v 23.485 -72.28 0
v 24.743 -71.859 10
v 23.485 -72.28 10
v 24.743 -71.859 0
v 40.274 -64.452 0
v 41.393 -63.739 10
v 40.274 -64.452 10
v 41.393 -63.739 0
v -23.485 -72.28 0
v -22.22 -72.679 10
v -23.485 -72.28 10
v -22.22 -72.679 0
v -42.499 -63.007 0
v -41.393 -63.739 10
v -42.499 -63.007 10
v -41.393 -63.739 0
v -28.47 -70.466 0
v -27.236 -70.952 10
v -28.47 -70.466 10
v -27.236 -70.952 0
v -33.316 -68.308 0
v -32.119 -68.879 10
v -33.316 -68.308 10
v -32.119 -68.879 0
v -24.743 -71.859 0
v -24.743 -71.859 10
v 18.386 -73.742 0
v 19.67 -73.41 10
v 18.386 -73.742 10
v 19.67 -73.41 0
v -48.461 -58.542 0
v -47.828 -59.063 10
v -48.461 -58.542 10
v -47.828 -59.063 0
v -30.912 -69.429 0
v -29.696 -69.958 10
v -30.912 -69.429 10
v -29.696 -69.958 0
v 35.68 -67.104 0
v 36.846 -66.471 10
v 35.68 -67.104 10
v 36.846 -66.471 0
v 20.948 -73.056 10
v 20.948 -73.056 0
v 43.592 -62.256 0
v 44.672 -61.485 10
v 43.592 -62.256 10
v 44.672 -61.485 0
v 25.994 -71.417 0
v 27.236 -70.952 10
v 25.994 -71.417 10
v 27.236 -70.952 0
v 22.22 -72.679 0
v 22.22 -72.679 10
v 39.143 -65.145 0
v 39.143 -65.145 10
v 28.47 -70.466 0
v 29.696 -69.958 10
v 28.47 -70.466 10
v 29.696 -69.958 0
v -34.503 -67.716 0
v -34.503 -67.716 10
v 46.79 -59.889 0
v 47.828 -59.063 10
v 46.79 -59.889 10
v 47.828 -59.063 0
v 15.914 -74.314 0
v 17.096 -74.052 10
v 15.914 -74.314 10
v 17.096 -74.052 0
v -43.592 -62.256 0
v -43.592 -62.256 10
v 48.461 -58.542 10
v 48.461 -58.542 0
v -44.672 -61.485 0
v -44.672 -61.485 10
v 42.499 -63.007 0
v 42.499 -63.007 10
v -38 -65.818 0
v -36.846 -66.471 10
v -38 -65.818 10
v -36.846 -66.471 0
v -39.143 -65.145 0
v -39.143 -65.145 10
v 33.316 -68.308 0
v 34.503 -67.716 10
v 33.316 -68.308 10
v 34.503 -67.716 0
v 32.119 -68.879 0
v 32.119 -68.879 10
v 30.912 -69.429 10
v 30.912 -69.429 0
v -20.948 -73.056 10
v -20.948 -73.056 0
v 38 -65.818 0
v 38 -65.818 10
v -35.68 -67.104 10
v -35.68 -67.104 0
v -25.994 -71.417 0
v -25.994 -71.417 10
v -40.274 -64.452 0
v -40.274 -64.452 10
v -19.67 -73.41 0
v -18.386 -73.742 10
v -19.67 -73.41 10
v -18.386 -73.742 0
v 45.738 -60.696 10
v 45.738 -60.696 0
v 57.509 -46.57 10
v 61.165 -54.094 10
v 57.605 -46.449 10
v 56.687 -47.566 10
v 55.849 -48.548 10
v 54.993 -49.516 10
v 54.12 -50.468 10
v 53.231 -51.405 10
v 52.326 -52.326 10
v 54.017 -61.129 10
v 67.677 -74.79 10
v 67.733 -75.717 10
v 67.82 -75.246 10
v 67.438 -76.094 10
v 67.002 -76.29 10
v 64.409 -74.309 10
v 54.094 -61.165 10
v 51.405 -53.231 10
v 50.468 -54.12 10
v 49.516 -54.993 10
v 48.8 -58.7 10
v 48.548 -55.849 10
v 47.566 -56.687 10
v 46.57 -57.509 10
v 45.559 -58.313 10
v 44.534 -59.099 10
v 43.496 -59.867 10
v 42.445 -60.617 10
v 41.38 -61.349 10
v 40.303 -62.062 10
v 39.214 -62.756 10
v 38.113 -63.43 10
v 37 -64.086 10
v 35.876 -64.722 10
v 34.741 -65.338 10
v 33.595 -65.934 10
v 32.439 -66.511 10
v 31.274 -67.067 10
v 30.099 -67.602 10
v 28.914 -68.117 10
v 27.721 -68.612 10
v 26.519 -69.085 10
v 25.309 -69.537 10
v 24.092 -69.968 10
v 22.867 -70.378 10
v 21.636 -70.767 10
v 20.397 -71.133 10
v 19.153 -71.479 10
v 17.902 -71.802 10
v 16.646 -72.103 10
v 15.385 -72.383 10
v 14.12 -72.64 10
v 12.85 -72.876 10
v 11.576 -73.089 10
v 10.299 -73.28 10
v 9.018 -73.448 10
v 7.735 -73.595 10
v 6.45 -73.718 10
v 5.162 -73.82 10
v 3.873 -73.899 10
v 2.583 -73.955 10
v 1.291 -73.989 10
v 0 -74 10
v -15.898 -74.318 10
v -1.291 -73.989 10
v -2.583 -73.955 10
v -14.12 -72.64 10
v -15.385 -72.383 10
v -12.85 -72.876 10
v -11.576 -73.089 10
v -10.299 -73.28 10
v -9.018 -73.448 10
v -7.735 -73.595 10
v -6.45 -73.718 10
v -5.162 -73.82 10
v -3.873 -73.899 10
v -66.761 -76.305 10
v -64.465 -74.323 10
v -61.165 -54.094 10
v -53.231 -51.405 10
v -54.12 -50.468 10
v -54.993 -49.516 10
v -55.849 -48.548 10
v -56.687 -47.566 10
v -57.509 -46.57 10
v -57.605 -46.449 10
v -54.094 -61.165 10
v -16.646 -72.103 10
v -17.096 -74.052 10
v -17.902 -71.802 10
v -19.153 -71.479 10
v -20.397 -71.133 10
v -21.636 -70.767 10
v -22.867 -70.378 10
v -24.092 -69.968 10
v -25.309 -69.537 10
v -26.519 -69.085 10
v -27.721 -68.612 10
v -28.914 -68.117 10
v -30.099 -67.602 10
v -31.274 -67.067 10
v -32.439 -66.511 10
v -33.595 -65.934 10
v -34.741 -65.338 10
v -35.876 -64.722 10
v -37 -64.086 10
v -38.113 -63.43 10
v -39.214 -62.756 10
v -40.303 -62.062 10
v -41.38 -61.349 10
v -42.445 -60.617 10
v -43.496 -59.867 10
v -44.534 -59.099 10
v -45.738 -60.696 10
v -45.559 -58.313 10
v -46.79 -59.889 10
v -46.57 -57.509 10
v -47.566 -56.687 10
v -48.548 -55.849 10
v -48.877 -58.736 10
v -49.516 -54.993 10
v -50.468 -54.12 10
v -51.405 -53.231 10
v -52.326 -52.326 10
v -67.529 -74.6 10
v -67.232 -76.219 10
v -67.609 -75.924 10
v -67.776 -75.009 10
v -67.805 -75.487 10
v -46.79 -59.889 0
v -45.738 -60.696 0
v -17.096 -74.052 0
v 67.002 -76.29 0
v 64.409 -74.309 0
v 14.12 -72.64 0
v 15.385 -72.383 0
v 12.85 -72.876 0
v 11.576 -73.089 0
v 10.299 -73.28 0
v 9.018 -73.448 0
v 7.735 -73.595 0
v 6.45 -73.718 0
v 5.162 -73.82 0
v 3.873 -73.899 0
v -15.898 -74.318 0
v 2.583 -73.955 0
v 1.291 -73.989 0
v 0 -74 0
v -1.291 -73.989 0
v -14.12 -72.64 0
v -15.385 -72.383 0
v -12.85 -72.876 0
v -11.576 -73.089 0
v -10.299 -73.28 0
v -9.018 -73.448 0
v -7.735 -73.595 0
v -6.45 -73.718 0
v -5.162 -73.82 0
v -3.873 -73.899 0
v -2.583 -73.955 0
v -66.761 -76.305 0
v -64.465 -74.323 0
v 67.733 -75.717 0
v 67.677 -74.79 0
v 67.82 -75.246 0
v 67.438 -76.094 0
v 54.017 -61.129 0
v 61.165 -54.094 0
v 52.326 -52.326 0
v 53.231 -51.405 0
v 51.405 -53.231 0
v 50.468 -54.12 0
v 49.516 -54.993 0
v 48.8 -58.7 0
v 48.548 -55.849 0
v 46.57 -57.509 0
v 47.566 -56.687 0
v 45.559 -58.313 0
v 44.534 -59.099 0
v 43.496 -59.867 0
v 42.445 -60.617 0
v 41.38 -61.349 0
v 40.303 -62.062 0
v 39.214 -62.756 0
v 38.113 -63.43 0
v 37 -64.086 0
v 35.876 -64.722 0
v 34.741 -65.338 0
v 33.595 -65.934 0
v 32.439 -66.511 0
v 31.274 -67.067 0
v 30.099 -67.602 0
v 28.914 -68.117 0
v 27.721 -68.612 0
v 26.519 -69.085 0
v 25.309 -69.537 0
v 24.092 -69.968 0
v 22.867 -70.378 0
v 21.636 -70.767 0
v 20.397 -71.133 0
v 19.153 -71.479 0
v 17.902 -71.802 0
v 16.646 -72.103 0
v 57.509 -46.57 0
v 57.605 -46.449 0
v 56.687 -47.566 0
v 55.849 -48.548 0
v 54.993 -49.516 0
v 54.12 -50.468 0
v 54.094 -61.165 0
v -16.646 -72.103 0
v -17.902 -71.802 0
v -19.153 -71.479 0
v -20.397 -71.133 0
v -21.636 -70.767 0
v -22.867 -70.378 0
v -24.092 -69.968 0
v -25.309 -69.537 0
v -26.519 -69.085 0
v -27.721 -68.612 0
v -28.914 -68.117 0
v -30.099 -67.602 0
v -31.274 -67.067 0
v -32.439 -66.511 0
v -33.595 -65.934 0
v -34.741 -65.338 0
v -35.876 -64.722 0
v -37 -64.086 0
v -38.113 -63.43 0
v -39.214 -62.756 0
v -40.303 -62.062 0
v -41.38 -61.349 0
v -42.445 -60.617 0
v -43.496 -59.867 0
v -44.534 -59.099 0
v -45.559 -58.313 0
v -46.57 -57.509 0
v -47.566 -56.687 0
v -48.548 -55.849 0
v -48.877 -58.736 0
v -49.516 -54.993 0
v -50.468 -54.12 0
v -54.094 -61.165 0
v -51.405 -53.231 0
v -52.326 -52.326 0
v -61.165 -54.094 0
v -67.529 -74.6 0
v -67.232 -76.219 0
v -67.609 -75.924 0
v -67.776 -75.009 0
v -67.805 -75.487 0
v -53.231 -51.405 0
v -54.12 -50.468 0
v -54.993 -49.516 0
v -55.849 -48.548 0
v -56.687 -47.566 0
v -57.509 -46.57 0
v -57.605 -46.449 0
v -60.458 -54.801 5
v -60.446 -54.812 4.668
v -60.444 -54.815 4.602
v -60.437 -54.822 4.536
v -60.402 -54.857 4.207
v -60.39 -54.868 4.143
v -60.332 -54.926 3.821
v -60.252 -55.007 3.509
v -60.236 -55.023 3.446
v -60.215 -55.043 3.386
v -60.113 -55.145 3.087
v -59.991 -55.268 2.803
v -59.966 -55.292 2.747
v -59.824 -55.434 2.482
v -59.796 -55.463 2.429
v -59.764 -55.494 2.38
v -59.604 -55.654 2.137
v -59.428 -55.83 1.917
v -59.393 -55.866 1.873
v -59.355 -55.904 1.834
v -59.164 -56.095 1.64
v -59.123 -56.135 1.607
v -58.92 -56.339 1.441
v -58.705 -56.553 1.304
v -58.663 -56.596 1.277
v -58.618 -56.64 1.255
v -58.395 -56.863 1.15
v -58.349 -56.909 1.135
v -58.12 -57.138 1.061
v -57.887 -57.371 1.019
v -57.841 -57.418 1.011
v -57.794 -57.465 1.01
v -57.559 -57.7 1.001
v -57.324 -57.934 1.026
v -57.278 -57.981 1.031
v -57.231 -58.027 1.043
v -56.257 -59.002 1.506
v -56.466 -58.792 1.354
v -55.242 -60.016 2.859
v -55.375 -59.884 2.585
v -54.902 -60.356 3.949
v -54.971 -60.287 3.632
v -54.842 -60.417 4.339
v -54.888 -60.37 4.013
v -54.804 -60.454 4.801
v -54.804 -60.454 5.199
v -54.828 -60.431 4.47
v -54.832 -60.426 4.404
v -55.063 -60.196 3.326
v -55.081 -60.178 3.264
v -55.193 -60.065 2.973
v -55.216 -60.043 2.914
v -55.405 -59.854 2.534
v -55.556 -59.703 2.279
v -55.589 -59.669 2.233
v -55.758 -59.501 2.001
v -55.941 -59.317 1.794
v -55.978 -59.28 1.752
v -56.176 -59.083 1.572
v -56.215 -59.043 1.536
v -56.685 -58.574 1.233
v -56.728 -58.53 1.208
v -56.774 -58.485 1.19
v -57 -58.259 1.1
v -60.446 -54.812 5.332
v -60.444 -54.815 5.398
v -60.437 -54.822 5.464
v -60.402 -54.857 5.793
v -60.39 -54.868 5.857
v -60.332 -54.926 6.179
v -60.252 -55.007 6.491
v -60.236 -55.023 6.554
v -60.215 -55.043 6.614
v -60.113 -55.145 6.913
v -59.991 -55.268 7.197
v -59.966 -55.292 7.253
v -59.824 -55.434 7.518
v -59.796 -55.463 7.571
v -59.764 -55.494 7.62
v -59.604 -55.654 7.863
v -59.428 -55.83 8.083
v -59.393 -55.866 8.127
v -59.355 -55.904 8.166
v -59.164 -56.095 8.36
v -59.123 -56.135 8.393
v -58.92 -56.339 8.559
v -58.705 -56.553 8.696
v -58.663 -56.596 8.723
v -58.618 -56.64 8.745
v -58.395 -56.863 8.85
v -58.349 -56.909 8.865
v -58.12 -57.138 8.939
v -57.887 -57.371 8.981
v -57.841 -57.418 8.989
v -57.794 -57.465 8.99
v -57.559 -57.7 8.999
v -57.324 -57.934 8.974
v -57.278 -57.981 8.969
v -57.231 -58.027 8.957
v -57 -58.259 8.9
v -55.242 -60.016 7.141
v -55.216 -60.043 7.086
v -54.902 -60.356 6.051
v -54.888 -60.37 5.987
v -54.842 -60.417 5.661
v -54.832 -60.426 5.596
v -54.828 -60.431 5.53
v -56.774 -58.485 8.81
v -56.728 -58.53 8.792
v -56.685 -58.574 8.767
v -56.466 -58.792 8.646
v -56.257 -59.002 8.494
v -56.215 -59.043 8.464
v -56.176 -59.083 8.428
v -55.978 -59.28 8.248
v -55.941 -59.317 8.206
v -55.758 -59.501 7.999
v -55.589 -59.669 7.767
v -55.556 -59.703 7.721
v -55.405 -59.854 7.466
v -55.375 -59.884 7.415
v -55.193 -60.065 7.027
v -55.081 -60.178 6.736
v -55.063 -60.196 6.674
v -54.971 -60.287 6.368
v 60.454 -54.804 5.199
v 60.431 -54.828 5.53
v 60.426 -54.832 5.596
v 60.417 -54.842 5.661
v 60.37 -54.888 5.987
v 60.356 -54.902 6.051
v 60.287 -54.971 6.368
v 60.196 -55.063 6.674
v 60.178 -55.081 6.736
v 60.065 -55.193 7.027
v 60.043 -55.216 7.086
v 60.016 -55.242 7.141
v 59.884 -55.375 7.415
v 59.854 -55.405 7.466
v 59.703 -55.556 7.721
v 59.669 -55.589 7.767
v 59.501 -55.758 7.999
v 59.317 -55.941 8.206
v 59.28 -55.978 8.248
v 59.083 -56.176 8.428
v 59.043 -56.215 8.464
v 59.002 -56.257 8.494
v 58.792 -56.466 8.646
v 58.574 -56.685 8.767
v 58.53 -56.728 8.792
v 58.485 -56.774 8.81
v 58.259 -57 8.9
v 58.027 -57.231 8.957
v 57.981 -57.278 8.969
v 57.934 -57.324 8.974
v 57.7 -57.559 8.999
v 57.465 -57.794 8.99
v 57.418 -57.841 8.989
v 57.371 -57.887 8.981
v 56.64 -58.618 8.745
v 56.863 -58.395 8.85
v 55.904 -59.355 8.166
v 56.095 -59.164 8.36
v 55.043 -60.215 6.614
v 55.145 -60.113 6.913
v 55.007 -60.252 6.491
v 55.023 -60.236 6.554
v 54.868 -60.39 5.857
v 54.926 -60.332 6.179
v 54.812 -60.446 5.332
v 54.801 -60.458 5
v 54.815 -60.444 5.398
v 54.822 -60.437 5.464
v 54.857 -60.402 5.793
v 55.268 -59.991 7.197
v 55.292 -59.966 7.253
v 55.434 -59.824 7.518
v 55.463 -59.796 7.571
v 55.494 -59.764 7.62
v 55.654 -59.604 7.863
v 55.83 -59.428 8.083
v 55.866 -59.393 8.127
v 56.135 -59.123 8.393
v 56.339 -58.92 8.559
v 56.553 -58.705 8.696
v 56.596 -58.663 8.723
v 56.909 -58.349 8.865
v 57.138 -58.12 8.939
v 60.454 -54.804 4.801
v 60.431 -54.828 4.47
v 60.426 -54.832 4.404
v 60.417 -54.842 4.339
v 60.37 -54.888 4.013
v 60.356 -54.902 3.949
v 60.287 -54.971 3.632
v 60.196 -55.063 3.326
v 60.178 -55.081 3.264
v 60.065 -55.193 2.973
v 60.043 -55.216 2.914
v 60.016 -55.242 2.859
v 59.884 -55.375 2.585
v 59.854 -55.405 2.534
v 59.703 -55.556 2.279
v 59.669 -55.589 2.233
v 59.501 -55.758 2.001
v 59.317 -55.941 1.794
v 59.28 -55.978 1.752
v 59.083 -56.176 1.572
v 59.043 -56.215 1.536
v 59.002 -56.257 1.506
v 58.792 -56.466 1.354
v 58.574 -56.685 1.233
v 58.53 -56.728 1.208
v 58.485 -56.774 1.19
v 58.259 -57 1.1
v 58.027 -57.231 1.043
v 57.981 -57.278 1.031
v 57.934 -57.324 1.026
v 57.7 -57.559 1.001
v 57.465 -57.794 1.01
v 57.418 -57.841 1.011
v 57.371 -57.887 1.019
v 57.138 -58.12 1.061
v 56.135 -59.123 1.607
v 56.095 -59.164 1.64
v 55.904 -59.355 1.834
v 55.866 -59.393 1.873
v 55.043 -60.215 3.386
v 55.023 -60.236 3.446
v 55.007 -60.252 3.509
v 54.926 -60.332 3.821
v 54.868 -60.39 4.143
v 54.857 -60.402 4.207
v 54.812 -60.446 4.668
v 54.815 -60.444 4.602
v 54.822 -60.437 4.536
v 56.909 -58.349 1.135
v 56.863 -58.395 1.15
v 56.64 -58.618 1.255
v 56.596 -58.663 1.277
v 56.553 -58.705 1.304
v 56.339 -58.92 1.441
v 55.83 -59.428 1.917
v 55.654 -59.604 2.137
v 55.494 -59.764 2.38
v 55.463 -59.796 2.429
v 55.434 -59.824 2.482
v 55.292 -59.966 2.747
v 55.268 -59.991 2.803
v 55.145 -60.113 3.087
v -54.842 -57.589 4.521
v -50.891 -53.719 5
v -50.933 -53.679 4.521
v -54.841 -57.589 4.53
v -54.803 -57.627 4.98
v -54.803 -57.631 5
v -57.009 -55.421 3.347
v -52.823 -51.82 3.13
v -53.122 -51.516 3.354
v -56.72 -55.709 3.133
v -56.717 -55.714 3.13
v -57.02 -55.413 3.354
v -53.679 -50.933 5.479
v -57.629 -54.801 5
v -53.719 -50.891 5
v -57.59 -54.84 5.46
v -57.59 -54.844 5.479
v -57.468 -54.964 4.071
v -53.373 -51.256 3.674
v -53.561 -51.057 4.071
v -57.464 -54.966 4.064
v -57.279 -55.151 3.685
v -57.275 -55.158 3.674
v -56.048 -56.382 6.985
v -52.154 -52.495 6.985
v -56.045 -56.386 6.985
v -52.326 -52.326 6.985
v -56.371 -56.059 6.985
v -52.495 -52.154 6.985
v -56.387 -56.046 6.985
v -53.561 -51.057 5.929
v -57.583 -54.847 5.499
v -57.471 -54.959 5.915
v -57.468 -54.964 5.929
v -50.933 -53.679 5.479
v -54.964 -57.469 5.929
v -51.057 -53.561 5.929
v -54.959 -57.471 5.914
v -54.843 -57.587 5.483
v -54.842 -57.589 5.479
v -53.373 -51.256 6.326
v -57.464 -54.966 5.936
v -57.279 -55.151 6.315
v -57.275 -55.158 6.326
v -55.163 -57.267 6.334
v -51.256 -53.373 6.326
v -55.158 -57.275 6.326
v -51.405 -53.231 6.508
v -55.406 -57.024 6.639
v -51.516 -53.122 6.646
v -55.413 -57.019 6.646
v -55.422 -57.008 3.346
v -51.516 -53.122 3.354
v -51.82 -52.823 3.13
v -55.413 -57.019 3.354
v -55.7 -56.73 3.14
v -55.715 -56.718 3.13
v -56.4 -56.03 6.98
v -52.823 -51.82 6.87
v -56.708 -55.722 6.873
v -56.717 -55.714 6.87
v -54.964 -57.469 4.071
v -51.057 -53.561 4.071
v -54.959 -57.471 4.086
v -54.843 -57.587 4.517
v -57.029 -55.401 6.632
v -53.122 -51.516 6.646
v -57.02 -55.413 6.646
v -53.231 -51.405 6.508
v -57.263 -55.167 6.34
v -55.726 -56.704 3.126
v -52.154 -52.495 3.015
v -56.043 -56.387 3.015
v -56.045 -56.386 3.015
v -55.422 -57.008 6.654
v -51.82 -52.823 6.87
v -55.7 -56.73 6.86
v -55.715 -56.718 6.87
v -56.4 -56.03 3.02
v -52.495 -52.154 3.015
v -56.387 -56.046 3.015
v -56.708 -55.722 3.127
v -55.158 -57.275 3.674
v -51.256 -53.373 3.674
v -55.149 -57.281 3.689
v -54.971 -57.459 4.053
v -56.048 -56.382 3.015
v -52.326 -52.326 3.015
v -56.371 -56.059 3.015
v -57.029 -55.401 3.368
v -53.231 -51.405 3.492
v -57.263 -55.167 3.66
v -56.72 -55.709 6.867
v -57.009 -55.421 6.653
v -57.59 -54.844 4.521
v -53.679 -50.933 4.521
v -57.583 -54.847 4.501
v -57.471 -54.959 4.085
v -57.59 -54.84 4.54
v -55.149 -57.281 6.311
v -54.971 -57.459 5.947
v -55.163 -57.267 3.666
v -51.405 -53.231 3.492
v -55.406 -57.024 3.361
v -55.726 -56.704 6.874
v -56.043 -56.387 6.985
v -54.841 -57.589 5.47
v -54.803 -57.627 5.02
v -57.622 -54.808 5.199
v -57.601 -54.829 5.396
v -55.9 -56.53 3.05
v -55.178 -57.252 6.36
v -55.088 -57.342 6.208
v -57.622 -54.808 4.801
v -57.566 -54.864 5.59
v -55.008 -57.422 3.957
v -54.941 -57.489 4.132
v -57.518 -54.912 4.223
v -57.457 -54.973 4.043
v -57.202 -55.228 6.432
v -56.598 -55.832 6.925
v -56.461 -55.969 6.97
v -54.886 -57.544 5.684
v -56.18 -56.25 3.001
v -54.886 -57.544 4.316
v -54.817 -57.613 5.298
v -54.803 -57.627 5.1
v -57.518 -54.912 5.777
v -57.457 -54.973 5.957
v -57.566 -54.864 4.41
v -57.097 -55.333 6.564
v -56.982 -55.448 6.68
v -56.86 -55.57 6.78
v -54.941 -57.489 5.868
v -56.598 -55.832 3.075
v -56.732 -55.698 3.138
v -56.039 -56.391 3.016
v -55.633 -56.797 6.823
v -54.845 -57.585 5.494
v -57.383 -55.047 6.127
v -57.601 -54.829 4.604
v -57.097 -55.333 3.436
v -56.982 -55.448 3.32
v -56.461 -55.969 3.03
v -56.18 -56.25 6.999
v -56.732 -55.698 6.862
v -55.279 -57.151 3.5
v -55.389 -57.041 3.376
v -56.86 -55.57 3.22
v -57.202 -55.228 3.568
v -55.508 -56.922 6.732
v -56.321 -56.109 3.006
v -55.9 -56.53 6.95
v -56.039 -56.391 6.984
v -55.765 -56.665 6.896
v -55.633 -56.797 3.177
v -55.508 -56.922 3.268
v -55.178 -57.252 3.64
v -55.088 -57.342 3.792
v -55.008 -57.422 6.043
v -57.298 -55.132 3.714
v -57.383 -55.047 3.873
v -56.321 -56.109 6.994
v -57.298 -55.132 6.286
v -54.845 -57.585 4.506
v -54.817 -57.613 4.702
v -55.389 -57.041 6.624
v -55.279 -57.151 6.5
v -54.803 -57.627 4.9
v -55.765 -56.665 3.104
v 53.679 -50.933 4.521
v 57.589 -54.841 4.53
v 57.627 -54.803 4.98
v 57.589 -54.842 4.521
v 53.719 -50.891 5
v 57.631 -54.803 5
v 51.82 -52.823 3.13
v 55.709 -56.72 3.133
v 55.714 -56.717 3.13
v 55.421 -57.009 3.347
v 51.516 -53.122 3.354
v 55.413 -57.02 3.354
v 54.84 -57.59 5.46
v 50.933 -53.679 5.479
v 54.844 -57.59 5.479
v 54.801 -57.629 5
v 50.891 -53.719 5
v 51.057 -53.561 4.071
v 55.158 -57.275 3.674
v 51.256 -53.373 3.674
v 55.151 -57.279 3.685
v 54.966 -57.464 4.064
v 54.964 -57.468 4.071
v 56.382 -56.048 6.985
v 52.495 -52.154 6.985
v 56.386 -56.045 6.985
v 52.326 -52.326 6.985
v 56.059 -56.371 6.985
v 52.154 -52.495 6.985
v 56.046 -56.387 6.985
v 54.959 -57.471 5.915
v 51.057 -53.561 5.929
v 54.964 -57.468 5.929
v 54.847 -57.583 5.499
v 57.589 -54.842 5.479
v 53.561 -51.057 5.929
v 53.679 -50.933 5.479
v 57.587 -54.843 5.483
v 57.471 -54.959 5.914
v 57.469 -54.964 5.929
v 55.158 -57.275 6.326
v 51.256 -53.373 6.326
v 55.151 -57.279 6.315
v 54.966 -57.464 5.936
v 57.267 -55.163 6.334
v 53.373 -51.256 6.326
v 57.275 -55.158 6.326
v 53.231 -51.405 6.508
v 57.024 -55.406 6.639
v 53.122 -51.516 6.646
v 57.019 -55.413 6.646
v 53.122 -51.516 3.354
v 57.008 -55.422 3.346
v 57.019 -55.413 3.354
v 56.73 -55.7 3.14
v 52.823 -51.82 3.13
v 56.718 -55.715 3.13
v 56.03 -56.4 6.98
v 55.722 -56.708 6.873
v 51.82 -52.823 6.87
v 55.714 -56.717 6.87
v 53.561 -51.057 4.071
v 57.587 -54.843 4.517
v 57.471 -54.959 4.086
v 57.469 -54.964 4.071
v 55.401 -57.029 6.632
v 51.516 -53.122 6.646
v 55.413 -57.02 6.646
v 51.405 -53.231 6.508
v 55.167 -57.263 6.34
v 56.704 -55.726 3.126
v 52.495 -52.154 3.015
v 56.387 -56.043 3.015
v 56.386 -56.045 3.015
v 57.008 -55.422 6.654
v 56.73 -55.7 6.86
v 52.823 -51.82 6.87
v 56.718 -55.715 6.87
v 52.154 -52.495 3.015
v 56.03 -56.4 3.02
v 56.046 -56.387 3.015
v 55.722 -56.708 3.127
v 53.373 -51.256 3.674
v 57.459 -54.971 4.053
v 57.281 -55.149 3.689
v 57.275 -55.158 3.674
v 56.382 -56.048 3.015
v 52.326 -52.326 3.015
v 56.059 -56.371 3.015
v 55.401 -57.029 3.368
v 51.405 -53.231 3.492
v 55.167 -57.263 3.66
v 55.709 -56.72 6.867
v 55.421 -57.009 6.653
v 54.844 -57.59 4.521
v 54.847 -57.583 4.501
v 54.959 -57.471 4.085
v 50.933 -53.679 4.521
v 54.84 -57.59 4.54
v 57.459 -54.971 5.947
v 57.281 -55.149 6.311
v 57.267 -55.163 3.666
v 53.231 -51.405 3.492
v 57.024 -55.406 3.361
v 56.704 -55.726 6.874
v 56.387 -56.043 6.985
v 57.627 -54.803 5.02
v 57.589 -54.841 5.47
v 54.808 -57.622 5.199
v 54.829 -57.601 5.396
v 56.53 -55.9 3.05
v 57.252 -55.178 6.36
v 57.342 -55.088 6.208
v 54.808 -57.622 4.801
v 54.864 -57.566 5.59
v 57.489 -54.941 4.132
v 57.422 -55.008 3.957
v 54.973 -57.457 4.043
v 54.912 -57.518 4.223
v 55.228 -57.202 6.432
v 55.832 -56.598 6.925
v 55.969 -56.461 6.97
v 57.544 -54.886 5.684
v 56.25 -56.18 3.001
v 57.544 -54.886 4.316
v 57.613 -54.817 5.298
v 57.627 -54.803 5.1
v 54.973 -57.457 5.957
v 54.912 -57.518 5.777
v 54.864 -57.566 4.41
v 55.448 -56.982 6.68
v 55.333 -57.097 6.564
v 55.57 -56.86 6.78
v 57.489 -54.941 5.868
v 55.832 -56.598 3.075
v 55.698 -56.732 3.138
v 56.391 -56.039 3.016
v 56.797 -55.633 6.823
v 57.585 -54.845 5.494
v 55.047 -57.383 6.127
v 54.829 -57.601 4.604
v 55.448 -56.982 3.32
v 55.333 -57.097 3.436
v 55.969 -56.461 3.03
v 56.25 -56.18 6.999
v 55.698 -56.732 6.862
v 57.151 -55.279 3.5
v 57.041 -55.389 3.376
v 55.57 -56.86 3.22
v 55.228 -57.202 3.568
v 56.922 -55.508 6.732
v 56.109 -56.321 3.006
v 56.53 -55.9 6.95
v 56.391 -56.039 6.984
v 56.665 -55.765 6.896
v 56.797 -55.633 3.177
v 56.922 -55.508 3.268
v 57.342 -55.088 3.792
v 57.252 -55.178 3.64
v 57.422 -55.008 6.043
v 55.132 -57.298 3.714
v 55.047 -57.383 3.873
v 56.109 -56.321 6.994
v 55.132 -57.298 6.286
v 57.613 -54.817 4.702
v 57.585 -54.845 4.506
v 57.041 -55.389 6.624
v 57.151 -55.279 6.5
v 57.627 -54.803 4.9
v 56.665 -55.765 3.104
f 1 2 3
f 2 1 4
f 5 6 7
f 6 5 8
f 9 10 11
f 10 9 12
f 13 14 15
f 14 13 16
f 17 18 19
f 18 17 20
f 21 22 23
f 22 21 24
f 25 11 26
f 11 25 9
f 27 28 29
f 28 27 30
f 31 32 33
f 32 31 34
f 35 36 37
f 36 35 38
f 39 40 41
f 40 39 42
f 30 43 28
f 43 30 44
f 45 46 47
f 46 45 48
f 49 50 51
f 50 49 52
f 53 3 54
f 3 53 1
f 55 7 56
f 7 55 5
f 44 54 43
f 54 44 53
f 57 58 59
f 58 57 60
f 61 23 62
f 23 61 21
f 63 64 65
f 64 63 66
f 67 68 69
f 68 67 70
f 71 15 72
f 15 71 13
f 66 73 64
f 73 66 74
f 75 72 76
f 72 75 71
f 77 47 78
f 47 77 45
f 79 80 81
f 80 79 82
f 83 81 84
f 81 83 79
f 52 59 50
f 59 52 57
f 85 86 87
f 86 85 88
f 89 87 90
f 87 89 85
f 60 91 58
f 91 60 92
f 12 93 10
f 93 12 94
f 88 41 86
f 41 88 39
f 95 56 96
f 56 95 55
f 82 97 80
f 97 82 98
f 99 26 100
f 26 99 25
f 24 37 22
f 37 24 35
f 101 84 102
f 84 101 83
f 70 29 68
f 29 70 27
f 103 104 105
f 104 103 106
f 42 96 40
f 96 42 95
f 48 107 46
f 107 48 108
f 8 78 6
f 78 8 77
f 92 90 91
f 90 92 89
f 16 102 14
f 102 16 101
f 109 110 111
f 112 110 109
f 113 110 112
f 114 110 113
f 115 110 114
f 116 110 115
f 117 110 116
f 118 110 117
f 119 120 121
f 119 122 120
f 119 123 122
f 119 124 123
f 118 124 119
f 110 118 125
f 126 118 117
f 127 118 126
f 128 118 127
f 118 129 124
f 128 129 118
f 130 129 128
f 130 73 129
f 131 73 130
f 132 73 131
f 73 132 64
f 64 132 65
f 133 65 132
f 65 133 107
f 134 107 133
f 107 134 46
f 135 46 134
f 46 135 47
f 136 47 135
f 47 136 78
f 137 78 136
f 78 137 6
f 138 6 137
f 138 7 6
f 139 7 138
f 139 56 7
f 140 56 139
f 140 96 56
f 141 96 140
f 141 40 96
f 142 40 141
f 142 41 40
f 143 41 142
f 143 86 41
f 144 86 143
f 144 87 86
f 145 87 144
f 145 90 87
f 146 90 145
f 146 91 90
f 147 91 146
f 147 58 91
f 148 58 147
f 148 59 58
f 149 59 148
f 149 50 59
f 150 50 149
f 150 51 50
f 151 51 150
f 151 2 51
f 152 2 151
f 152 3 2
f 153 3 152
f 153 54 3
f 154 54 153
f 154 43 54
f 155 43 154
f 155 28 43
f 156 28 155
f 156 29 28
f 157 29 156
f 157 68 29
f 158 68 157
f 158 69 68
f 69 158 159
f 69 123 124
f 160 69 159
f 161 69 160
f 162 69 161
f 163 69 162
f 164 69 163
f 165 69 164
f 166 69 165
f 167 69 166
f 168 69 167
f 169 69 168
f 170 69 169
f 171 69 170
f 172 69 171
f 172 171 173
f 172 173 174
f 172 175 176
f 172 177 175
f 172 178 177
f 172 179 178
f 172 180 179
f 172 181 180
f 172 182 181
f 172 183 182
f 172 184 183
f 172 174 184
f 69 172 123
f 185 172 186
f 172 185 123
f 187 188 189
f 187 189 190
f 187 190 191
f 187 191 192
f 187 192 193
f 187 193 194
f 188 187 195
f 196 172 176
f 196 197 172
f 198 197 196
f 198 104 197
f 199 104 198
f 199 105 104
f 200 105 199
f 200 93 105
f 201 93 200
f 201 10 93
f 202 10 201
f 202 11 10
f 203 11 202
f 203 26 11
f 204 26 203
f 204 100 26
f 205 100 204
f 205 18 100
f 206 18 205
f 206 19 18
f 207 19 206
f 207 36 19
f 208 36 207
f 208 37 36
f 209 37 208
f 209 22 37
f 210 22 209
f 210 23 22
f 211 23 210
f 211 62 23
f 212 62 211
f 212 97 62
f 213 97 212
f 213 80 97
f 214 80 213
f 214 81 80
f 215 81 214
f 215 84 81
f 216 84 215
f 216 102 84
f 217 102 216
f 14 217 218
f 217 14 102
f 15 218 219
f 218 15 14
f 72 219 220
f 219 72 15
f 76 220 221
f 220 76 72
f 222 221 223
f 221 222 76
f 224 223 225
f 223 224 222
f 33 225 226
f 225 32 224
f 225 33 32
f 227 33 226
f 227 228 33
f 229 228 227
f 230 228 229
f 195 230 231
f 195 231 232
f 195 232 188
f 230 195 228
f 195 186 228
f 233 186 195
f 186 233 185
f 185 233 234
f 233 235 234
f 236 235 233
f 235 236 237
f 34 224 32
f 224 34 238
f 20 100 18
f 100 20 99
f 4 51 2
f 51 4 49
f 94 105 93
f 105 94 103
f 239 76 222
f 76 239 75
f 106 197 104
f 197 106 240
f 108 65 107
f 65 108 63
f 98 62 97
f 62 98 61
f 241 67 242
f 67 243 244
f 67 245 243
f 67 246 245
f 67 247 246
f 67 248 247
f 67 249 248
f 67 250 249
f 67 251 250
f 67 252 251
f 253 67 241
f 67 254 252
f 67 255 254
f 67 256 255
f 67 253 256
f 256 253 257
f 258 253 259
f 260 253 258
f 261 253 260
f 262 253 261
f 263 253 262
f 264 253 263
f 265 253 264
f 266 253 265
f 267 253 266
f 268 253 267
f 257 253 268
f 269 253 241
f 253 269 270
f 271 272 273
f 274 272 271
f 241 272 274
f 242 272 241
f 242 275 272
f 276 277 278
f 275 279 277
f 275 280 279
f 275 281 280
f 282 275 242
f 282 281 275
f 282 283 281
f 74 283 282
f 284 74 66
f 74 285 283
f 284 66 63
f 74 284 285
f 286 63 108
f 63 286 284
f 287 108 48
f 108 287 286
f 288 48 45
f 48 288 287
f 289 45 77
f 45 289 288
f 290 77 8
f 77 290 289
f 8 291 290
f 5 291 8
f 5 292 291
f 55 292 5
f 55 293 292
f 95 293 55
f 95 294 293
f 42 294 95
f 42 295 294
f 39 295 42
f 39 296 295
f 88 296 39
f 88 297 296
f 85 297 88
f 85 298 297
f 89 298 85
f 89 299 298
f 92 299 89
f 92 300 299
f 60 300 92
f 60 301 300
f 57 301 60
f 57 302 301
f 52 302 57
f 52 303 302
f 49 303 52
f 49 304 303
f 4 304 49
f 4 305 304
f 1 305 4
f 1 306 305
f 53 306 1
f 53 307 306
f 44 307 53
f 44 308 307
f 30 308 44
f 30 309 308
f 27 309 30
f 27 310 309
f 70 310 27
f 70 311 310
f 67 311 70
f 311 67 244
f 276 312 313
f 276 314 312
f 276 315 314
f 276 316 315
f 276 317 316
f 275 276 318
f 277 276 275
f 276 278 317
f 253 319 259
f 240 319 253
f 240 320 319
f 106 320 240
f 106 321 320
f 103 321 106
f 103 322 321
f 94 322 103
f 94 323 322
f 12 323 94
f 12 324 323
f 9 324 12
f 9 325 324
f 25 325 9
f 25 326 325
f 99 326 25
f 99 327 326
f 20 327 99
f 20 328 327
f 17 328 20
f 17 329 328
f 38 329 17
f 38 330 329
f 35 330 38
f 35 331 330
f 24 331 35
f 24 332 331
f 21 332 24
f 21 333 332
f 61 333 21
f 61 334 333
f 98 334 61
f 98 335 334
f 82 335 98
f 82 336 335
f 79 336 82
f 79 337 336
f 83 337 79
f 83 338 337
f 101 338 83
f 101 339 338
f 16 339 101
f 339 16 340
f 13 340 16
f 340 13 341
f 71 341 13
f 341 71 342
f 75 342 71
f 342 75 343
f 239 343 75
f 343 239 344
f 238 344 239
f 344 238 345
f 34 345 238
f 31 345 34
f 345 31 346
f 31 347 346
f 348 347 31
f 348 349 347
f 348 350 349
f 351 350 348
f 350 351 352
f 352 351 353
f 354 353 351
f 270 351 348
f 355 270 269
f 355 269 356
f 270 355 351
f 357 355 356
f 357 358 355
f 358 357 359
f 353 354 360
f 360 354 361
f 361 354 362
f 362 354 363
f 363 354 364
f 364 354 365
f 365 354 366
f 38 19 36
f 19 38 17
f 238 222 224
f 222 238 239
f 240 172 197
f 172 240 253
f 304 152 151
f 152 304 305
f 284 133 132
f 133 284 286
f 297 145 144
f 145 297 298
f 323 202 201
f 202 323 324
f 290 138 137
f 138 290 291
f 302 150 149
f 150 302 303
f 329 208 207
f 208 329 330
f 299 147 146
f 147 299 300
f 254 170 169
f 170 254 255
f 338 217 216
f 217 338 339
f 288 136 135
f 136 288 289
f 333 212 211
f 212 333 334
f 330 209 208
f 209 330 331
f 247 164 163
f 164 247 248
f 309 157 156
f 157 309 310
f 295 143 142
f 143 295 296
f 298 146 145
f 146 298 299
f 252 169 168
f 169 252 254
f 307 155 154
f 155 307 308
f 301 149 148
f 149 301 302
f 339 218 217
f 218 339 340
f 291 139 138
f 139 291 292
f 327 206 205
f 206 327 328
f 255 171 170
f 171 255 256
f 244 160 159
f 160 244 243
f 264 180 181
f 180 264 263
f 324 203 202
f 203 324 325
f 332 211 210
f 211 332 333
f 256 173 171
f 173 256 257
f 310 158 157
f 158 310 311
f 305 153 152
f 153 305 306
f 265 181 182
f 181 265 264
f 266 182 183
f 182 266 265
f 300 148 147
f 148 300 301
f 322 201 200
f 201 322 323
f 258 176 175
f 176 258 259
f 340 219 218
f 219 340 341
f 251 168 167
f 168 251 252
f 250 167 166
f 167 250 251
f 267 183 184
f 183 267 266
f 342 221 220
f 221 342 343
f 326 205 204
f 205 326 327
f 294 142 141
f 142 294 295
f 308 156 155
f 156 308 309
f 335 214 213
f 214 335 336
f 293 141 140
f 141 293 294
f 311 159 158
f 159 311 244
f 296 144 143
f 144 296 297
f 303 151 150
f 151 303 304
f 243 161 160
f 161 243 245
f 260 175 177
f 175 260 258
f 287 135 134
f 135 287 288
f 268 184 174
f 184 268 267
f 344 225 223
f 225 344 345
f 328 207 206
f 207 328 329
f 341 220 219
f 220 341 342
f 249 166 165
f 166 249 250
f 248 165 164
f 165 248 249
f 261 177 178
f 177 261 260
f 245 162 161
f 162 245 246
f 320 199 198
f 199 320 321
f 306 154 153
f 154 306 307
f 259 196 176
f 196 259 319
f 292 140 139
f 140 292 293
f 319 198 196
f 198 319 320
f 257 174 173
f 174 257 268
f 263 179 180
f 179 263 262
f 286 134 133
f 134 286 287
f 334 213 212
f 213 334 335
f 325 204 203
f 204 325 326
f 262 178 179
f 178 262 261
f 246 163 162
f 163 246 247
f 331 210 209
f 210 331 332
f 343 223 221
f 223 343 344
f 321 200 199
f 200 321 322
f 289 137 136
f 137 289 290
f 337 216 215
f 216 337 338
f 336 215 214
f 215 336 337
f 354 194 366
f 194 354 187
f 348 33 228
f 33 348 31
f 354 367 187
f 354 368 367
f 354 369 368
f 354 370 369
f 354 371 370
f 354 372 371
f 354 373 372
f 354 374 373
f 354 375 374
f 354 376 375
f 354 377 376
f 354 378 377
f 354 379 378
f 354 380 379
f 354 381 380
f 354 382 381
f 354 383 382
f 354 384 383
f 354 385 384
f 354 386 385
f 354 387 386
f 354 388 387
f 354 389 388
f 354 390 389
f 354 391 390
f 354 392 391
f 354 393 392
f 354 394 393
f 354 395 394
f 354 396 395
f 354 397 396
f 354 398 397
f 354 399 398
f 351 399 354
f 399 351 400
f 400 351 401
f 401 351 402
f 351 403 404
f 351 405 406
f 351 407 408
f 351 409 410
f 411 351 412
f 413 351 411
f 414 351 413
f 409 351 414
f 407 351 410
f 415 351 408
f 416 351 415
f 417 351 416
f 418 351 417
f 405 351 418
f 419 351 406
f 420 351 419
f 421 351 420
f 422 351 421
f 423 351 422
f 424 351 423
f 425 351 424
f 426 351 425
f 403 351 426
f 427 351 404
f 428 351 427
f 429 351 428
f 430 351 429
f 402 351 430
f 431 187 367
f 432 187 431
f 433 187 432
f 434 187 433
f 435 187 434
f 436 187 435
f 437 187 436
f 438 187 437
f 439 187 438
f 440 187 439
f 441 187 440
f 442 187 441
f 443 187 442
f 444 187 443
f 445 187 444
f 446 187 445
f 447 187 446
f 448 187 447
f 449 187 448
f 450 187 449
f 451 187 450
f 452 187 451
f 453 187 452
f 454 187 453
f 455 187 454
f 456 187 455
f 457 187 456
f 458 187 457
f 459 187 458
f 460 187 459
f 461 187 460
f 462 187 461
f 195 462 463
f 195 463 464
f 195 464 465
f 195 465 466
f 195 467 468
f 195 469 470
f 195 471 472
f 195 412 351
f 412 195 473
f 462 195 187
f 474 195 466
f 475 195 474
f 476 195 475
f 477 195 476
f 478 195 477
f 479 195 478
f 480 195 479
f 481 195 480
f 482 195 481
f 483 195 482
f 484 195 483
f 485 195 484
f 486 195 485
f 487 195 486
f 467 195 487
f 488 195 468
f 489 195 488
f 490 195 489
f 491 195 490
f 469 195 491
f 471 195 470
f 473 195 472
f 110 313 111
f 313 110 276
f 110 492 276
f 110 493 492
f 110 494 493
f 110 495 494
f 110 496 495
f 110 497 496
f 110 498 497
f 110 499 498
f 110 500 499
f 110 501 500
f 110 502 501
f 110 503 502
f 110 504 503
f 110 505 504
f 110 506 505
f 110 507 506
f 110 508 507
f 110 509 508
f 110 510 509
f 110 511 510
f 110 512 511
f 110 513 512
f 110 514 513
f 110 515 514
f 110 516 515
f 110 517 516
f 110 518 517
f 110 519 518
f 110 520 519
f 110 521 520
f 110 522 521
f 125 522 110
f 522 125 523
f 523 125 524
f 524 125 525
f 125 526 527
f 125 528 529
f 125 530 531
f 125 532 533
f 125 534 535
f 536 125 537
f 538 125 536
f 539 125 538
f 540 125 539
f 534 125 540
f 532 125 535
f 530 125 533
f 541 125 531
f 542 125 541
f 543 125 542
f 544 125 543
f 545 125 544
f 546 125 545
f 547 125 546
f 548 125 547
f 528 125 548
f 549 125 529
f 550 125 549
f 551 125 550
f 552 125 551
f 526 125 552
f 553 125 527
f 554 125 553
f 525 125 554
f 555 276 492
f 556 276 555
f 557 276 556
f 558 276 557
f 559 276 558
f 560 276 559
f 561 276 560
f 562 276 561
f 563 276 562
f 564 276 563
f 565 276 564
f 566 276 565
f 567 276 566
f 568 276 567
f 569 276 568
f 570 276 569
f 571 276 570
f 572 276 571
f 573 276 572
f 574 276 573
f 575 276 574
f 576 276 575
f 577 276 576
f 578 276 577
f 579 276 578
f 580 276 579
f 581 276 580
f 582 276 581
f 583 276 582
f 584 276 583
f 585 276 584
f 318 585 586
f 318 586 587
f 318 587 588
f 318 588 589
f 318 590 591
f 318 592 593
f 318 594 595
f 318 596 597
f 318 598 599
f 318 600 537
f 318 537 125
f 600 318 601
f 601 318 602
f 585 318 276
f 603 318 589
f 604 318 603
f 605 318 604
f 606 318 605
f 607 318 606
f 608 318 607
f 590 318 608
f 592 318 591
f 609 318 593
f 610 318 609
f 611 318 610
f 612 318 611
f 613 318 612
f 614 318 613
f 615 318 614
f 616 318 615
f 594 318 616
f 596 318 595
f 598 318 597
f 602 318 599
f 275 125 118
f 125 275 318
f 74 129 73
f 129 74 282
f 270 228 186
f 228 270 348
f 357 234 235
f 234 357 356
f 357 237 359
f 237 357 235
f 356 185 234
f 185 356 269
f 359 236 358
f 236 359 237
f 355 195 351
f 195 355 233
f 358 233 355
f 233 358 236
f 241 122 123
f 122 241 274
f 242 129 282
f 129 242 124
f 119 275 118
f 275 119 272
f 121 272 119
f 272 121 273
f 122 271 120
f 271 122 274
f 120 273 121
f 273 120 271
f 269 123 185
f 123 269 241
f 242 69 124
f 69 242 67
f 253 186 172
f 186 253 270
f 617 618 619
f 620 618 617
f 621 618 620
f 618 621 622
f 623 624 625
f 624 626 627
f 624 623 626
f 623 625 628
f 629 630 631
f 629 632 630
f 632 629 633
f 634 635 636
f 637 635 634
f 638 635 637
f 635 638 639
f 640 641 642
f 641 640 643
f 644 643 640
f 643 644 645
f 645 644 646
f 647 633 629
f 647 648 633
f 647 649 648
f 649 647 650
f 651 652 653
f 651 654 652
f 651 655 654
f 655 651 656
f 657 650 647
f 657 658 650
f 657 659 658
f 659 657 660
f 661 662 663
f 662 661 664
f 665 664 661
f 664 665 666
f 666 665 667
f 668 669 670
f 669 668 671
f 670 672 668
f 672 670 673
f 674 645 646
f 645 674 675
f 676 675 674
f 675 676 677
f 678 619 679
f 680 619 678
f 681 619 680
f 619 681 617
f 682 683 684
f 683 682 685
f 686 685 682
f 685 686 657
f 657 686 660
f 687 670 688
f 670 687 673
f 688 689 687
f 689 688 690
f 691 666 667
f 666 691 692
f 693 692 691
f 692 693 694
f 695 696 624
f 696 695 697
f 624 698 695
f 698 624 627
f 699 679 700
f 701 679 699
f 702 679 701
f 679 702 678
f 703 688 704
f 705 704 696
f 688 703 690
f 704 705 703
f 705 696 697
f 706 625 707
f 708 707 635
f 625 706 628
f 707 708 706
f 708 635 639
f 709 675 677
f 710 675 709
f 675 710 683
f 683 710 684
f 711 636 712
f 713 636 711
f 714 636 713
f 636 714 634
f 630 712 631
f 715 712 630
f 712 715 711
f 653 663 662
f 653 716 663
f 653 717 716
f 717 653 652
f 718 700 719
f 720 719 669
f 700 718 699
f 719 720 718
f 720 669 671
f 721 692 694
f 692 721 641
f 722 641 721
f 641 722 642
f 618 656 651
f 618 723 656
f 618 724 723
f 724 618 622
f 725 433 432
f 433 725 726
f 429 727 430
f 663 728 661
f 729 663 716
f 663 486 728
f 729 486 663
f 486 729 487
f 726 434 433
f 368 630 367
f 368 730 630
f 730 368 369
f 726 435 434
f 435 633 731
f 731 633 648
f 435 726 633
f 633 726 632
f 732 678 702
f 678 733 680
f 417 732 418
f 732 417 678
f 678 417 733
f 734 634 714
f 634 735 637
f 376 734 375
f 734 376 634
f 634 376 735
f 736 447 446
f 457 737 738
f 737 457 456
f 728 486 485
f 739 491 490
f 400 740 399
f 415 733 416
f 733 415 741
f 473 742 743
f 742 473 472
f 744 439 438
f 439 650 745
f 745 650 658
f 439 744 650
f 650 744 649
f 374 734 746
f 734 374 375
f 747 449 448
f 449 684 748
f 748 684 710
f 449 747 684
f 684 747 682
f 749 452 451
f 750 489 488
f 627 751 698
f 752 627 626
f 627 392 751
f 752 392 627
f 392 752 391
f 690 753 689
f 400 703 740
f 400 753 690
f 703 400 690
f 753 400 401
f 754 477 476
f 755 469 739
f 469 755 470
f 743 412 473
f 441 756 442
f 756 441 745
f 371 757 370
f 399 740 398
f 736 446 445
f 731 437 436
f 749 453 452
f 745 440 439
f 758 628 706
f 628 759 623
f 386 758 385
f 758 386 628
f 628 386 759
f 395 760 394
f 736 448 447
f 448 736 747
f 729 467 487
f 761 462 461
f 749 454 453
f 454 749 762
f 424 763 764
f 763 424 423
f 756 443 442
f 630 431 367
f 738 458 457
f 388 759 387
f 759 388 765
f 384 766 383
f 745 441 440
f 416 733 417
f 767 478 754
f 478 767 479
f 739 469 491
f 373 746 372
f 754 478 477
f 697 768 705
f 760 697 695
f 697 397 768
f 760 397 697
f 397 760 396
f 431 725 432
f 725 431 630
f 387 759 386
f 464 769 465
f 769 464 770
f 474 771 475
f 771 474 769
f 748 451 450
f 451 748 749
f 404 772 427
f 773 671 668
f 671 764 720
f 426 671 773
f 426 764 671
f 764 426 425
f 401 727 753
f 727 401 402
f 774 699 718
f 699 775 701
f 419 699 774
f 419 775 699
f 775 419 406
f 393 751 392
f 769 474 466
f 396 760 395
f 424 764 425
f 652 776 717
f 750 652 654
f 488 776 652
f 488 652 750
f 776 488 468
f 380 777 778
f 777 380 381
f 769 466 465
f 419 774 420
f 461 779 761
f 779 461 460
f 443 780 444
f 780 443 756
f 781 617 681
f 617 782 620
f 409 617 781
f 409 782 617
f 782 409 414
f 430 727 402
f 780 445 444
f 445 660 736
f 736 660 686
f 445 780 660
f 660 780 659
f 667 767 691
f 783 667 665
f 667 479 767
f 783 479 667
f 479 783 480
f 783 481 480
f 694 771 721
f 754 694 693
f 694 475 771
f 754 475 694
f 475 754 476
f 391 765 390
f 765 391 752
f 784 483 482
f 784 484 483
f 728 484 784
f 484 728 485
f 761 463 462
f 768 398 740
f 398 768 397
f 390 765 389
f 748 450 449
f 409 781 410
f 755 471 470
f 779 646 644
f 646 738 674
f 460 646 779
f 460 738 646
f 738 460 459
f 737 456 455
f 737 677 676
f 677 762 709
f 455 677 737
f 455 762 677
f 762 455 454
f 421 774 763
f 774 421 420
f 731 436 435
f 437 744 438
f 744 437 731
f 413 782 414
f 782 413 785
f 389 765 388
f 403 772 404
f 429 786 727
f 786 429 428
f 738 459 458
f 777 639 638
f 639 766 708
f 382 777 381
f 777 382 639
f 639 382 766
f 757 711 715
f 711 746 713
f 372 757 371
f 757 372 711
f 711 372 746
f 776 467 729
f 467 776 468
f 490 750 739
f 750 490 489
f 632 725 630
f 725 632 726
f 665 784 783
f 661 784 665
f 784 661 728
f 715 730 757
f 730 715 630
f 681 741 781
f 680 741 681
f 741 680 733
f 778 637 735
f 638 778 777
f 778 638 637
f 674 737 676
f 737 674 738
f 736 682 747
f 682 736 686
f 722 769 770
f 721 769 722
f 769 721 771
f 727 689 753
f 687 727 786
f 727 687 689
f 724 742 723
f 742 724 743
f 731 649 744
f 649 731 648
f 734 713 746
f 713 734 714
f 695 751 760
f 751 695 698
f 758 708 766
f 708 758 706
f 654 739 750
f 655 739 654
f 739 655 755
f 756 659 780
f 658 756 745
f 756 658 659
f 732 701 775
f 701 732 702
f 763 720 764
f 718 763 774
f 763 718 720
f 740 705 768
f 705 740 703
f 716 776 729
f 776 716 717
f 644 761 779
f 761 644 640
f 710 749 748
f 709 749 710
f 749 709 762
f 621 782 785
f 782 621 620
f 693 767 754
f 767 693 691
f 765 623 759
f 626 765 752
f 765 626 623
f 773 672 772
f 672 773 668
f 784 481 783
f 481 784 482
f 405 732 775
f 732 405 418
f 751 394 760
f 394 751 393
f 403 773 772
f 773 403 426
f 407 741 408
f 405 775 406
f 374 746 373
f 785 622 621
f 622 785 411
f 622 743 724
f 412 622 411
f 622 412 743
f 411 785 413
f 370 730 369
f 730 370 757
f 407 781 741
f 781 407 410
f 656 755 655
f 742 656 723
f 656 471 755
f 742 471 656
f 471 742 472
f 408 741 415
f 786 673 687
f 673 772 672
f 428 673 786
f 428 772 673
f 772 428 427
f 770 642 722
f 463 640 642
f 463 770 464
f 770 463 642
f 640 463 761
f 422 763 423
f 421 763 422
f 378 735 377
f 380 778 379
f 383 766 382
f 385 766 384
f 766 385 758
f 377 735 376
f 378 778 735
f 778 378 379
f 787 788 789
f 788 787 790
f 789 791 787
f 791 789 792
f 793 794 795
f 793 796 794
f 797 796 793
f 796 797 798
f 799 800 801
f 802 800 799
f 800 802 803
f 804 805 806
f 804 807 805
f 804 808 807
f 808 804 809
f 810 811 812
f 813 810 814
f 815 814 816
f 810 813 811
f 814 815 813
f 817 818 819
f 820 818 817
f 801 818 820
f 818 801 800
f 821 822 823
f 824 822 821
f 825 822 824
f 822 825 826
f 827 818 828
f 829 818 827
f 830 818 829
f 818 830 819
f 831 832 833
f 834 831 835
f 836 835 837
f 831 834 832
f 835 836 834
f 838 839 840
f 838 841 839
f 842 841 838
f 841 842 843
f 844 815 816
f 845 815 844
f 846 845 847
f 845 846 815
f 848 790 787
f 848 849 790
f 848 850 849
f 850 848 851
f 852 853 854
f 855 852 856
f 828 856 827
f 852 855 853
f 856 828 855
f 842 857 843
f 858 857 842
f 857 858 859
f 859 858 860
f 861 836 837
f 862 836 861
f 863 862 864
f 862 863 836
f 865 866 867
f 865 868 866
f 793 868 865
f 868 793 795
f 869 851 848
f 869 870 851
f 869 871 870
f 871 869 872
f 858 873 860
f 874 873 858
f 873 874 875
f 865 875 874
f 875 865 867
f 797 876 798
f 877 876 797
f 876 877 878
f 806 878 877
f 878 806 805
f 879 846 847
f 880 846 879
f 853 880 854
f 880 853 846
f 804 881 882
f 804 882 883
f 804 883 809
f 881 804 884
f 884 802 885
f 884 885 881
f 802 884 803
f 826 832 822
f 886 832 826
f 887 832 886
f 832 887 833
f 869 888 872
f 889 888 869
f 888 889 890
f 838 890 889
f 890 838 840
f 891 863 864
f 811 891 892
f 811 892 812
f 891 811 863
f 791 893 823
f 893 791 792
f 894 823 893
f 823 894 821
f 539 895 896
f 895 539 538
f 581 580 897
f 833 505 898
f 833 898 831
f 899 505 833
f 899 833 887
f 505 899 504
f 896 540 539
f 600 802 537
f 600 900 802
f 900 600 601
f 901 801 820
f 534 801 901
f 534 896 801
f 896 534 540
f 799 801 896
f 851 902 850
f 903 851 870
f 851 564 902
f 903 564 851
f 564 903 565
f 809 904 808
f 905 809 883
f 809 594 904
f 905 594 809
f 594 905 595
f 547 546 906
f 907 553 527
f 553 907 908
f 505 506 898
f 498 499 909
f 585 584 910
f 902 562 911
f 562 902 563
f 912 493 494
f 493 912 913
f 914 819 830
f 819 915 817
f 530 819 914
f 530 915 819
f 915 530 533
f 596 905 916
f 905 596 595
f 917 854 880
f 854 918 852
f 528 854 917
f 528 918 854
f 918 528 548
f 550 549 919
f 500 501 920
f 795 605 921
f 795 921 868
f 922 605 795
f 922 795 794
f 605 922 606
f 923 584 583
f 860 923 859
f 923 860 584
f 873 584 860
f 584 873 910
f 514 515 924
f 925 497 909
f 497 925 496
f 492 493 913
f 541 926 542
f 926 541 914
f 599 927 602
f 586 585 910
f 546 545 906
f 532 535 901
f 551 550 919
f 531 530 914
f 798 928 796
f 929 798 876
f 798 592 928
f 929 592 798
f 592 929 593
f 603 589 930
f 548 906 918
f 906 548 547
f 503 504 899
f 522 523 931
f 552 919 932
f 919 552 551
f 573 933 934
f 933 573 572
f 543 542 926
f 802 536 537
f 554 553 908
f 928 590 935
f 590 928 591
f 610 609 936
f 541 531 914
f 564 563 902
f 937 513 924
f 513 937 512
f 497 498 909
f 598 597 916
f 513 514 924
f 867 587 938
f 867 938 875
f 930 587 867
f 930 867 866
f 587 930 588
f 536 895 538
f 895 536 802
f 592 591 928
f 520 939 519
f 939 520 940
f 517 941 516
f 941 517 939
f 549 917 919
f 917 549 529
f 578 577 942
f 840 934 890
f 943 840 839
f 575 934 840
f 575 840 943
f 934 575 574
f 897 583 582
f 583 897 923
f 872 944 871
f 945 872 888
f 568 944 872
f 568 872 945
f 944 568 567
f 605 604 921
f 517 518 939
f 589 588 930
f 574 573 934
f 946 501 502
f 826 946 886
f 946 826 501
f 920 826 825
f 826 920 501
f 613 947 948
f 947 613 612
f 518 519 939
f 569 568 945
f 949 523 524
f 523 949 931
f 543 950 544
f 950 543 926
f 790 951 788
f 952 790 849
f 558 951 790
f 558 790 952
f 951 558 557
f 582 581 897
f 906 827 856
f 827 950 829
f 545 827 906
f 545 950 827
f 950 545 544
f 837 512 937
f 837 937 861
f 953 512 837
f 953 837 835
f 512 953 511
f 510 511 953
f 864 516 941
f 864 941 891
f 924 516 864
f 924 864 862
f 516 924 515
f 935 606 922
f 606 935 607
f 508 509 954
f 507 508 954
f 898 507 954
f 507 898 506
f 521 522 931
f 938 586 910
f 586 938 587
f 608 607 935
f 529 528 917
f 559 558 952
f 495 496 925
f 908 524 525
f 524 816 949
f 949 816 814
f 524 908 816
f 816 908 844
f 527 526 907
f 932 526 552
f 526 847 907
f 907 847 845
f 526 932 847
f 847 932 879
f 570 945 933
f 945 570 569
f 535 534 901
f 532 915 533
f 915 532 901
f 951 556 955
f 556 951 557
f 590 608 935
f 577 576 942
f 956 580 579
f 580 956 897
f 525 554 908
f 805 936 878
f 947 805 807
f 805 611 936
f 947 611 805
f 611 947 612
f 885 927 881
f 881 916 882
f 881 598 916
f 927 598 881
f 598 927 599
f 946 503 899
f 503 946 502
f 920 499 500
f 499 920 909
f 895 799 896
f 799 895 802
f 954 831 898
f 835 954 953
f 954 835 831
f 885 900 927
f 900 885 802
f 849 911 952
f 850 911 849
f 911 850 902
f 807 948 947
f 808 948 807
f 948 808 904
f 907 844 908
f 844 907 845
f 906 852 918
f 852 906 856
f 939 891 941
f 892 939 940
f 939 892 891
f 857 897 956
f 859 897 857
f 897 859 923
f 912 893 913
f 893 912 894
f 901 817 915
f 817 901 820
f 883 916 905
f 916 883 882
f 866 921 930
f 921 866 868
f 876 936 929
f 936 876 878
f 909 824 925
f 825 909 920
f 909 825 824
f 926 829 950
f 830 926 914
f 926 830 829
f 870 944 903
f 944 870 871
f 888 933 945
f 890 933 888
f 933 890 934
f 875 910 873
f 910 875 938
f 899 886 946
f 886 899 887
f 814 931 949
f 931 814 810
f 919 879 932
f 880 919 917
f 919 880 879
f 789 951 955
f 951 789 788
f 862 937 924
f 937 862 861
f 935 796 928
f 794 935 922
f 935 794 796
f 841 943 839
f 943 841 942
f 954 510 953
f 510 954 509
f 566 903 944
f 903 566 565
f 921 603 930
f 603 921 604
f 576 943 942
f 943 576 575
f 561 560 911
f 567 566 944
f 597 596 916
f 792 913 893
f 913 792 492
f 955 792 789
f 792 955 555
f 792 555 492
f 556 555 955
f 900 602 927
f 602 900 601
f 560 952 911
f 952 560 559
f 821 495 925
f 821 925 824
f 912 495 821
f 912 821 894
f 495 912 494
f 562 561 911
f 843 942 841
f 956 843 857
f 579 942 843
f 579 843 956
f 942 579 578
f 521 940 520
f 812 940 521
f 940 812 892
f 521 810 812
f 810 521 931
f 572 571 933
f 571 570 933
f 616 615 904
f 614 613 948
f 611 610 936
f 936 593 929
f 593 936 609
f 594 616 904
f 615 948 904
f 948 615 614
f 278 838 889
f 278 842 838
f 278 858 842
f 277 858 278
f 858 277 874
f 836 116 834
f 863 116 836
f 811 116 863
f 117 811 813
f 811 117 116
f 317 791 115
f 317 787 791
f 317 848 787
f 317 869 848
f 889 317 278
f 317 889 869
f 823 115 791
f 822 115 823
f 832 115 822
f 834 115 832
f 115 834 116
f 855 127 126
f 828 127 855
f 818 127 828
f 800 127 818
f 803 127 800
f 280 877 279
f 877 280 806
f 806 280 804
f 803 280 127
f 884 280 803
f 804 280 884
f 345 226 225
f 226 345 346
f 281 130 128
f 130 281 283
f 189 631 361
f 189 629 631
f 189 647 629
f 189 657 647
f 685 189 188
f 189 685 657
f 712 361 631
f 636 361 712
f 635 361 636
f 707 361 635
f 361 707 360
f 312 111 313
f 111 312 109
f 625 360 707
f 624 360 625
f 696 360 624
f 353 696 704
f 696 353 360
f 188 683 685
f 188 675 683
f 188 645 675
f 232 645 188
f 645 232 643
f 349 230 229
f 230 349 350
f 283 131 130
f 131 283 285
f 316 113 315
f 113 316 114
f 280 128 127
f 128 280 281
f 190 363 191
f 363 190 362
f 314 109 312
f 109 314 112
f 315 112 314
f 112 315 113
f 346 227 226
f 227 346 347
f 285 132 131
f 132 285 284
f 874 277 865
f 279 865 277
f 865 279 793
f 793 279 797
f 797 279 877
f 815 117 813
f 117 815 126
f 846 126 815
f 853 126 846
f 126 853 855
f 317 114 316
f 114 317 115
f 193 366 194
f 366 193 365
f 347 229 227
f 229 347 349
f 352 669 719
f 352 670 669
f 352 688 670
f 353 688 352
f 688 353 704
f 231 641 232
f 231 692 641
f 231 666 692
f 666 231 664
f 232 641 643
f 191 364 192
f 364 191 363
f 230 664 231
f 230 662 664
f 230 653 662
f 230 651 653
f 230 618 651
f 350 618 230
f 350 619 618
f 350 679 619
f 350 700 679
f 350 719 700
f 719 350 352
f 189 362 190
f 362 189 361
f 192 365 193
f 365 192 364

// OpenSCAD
$fa=1;
$fs=0.5;

sh_through = 4;
sh_countersink = 3;
sh_thread = 4.5; // 2.7 for tapping, 4.5 for brass insert

shell_thickness = 2;

flange_gap = 20;
ifd = flange_gap + 40;

grow_prop = sqrt(2);

slop_adjust = 0.5;

tube_diameter = 147;

bar_width = tube_diameter - 14;

mirror_module_offset = 0;

on_tube_dia = (tube_diameter / 2) - (slop_adjust * 2) - (shell_thickness/2);

support_angle = 25.75;



module foot_mount() {
    hull() {
        rotate([0,0,180])translate([-10/2,(tube_diameter/2)-shell_thickness+5,0])cube([10,5,10]);
        rotate([0,0,180-3])translate([-10/2,(tube_diameter/2)-shell_thickness,0])cube([10,0.1,10]);
        rotate([0,0,180+3])translate([-10/2,(tube_diameter/2)-shell_thickness,0])cube([10,0.1,10]);
    } 
}

module foot_mount_holes(){
    rotate([0,0,180])translate([0,(tube_diameter/2)+20,5])rotate([90,0,0])cylinder(40,sh_through/2,sh_through/2);
    rotate([0,0,180])translate([0,(tube_diameter/2)+6,5])rotate([-90,0,0])cylinder(sh_countersink, sh_through/2, sh_countersink + (sh_through/2)); 
}


difference(){
    union(){
        rotate([0,0,-45])foot_mount();
        rotate([0,0,45])foot_mount();
        difference() {
            translate([0,0,0])cylinder(10,(tube_diameter/2+slop_adjust+shell_thickness),(tube_diameter/2+slop_adjust+shell_thickness));
            translate([0,0,-1])cylinder(12,(tube_diameter/2+slop_adjust),(tube_diameter/2+slop_adjust));
            translate([-100,-55,-1])cube([200,200,12]);
        }
        
        hull(){
            rotate([0,0,180-45])translate([(-10/2)-(shell_thickness/2),(tube_diameter/2)-shell_thickness,0])cylinder(10,shell_thickness/2,shell_thickness/2);
            rotate([0,0,180-45])translate([(-10/2)-(shell_thickness/2),100.5,0])cylinder(10,shell_thickness/2,shell_thickness/2);
        }
        hull(){
            rotate([0,0,180+45])translate([(10/2)+(shell_thickness/2),(tube_diameter/2)-shell_thickness,0])cylinder(10,shell_thickness/2,shell_thickness/2);
            rotate([0,0,180+45])translate([(10/2)+(shell_thickness/2),100.5,0])cylinder(10,shell_thickness/2,shell_thickness/2);
        }
        hull(){
            rotate([0,0,180-45])translate([(-10/2)-(shell_thickness/2),100.5,0])cylinder(10,shell_thickness/2,shell_thickness/2);
            rotate([0,0,180+45])translate([(10/2)+(shell_thickness/2),100.5,0])cylinder(10,shell_thickness/2,shell_thickness/2);
        }
        
    }
    rotate([0,0,-45])foot_mount_holes();
    rotate([0,0,45])foot_mount_holes();
    translate([0,0,-1])cylinder(12,(tube_diameter/2+slop_adjust),(tube_diameter/2+slop_adjust));
    
}
